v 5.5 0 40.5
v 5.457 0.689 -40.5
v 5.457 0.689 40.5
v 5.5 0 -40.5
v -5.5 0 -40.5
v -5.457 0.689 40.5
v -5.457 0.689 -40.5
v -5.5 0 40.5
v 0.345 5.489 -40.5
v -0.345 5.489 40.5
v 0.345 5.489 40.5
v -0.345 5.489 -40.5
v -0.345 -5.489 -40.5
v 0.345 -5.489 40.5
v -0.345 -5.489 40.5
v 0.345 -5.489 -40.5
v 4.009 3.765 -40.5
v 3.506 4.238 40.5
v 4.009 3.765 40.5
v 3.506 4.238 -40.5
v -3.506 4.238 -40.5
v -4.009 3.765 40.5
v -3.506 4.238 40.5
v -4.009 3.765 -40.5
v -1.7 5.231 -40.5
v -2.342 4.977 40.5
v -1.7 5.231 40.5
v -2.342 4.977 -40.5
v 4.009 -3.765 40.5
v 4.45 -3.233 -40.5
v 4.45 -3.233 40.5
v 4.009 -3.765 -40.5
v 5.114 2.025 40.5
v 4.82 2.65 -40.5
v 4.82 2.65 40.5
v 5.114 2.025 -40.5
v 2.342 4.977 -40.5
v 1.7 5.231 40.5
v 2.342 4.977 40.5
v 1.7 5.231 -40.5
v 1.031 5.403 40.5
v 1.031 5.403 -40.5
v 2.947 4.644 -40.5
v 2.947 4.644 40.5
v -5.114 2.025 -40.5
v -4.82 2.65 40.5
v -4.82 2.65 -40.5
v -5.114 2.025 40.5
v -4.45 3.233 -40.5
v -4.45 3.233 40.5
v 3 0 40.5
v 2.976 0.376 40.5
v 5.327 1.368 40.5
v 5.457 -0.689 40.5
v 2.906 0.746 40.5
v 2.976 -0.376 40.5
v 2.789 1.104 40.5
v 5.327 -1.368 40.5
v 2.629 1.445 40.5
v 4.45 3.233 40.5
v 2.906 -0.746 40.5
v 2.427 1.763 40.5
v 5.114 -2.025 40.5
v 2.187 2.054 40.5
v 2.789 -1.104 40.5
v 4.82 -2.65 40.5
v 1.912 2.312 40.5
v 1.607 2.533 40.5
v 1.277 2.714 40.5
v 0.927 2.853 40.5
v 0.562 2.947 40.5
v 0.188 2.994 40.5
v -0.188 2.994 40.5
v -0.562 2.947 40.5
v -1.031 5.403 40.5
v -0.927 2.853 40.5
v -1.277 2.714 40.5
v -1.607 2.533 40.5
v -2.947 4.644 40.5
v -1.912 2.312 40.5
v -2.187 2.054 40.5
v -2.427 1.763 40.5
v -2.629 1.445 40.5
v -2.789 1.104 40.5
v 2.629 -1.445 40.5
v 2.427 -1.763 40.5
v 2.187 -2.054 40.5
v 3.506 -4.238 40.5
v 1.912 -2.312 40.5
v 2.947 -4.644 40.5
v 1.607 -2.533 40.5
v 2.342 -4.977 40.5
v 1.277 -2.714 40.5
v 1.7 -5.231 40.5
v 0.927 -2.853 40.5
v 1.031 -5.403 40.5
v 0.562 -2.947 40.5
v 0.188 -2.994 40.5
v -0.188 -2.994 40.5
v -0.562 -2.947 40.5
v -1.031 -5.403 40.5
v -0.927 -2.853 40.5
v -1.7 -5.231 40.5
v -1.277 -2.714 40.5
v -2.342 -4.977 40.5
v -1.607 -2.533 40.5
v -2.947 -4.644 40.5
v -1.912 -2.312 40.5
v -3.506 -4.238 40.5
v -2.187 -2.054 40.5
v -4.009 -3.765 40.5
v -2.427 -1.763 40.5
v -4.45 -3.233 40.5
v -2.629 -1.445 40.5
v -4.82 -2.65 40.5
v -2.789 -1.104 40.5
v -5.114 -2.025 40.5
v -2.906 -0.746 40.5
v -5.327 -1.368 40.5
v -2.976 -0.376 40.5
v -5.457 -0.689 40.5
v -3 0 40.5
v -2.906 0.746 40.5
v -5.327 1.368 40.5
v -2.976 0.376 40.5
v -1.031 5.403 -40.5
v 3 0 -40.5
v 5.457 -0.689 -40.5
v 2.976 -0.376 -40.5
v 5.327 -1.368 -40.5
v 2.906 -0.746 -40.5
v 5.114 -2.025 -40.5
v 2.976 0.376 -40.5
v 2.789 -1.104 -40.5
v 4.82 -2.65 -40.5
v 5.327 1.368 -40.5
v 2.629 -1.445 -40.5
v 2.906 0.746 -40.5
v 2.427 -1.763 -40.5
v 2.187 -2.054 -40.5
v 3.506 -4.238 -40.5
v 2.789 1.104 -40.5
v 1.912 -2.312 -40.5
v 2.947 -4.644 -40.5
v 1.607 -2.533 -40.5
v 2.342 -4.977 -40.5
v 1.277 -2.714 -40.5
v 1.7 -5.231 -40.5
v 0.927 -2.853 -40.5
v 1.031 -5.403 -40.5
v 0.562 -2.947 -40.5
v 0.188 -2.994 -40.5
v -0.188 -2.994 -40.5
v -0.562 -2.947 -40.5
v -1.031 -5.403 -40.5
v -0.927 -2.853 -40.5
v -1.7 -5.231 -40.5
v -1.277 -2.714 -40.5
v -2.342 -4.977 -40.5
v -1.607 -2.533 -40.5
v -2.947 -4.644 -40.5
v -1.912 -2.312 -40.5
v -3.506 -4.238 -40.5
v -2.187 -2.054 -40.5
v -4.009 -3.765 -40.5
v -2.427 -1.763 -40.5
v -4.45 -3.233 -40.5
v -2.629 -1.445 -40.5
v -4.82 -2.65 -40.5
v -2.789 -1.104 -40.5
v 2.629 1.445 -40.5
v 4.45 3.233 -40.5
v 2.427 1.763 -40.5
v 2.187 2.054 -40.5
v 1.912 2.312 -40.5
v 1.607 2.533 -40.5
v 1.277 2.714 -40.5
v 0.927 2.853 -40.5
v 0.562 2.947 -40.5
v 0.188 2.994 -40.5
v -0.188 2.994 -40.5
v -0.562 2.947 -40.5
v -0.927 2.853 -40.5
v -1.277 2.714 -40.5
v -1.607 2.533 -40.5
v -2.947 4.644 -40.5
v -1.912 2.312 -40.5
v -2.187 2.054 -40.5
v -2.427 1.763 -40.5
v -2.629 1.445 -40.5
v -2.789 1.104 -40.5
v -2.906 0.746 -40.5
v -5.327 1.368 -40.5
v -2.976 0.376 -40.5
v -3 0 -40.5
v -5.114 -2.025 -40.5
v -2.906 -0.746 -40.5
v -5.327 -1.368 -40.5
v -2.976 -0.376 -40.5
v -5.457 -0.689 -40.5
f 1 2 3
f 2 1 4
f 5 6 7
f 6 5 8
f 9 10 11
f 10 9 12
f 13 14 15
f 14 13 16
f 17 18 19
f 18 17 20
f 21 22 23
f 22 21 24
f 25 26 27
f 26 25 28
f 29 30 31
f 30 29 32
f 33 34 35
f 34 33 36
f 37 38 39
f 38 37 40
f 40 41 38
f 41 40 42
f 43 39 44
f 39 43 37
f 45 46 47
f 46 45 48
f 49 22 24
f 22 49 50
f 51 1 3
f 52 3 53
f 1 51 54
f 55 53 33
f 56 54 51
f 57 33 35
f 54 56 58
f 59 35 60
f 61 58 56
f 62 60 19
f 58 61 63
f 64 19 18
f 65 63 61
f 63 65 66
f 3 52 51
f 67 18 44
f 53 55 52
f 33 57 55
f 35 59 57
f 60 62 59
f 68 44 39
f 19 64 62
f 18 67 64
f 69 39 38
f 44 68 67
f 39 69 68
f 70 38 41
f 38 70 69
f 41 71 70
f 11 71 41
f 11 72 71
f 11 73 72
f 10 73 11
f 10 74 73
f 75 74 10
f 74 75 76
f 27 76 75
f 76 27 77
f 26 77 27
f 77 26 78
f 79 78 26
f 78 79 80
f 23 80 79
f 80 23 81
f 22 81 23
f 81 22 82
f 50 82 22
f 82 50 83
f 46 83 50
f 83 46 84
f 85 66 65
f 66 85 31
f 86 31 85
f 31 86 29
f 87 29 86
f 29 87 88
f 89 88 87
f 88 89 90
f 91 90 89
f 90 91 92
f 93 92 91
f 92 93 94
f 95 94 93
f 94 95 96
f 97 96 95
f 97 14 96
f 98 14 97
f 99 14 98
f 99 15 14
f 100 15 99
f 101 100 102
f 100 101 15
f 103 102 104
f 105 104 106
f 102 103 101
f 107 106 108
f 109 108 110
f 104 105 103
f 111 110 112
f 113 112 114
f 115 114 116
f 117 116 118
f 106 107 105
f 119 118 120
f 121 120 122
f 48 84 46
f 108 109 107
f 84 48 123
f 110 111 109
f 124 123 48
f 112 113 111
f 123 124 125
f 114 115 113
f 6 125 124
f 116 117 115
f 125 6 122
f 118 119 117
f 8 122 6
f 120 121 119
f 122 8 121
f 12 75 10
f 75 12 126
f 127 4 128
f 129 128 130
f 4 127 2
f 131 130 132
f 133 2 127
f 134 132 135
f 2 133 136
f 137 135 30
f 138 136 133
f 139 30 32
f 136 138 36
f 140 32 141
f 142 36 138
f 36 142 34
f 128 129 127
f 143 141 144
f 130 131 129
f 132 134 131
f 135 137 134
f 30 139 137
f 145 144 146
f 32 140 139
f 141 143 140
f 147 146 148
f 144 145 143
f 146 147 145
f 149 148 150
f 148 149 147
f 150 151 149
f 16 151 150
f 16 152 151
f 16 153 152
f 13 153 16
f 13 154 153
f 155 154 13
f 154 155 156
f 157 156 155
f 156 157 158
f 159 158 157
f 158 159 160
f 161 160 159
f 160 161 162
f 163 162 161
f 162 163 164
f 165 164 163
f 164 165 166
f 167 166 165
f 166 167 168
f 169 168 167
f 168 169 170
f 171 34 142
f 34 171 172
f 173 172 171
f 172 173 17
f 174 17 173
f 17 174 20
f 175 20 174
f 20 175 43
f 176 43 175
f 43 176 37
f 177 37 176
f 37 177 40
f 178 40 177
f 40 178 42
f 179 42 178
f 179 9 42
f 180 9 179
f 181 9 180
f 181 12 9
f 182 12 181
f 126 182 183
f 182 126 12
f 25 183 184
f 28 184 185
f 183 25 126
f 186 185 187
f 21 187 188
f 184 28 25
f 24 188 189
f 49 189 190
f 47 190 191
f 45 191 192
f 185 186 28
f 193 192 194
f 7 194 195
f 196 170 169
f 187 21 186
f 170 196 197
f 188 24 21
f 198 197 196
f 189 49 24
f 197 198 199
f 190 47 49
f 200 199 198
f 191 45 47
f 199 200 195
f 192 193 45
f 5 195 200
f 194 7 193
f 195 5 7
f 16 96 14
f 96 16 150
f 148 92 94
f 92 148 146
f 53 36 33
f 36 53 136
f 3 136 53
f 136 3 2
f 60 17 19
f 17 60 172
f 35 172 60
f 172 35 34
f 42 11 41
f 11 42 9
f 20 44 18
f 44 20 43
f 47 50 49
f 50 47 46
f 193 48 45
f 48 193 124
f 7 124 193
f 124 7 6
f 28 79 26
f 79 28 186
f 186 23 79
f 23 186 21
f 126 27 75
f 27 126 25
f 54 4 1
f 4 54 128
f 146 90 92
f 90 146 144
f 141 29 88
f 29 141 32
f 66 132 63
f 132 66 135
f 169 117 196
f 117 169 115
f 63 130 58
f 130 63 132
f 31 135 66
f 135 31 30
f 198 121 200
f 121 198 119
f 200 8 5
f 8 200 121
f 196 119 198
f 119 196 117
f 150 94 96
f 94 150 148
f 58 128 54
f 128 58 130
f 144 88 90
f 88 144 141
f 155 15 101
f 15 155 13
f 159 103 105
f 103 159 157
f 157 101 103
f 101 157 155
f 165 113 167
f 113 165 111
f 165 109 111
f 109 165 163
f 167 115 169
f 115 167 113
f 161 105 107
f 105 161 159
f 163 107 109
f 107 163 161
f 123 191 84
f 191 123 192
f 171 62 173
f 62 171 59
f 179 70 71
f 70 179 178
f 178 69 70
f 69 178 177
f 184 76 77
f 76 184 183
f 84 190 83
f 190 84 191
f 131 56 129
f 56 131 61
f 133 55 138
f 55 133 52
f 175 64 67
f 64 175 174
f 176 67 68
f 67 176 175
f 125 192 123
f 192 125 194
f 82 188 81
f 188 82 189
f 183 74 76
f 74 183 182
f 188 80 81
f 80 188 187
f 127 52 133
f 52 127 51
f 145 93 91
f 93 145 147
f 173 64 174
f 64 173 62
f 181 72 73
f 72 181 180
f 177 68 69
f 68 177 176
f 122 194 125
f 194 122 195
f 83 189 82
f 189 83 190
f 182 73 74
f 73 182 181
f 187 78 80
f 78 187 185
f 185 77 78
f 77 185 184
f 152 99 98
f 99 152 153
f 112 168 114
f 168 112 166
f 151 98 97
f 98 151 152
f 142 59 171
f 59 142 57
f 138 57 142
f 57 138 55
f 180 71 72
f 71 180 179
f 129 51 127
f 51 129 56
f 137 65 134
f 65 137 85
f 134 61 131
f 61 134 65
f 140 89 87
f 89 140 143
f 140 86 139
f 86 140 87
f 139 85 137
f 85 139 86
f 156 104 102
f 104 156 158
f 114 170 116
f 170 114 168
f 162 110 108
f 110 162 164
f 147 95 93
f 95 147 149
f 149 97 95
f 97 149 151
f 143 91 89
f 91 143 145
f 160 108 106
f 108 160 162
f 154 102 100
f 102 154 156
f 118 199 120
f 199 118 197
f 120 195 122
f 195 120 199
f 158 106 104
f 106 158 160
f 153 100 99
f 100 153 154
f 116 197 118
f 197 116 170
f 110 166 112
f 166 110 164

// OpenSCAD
$fn = 50;


difference() {
	union() {
		translate(v = [0, 0, -40.5000000000]) {
			cylinder(h = 81, r = 5.5000000000);
		}
	}
	union() {
		translate(v = [0, 0, -100.0000000000]) {
			cylinder(h = 200, r = 3.0000000000);
		}
	}
}
